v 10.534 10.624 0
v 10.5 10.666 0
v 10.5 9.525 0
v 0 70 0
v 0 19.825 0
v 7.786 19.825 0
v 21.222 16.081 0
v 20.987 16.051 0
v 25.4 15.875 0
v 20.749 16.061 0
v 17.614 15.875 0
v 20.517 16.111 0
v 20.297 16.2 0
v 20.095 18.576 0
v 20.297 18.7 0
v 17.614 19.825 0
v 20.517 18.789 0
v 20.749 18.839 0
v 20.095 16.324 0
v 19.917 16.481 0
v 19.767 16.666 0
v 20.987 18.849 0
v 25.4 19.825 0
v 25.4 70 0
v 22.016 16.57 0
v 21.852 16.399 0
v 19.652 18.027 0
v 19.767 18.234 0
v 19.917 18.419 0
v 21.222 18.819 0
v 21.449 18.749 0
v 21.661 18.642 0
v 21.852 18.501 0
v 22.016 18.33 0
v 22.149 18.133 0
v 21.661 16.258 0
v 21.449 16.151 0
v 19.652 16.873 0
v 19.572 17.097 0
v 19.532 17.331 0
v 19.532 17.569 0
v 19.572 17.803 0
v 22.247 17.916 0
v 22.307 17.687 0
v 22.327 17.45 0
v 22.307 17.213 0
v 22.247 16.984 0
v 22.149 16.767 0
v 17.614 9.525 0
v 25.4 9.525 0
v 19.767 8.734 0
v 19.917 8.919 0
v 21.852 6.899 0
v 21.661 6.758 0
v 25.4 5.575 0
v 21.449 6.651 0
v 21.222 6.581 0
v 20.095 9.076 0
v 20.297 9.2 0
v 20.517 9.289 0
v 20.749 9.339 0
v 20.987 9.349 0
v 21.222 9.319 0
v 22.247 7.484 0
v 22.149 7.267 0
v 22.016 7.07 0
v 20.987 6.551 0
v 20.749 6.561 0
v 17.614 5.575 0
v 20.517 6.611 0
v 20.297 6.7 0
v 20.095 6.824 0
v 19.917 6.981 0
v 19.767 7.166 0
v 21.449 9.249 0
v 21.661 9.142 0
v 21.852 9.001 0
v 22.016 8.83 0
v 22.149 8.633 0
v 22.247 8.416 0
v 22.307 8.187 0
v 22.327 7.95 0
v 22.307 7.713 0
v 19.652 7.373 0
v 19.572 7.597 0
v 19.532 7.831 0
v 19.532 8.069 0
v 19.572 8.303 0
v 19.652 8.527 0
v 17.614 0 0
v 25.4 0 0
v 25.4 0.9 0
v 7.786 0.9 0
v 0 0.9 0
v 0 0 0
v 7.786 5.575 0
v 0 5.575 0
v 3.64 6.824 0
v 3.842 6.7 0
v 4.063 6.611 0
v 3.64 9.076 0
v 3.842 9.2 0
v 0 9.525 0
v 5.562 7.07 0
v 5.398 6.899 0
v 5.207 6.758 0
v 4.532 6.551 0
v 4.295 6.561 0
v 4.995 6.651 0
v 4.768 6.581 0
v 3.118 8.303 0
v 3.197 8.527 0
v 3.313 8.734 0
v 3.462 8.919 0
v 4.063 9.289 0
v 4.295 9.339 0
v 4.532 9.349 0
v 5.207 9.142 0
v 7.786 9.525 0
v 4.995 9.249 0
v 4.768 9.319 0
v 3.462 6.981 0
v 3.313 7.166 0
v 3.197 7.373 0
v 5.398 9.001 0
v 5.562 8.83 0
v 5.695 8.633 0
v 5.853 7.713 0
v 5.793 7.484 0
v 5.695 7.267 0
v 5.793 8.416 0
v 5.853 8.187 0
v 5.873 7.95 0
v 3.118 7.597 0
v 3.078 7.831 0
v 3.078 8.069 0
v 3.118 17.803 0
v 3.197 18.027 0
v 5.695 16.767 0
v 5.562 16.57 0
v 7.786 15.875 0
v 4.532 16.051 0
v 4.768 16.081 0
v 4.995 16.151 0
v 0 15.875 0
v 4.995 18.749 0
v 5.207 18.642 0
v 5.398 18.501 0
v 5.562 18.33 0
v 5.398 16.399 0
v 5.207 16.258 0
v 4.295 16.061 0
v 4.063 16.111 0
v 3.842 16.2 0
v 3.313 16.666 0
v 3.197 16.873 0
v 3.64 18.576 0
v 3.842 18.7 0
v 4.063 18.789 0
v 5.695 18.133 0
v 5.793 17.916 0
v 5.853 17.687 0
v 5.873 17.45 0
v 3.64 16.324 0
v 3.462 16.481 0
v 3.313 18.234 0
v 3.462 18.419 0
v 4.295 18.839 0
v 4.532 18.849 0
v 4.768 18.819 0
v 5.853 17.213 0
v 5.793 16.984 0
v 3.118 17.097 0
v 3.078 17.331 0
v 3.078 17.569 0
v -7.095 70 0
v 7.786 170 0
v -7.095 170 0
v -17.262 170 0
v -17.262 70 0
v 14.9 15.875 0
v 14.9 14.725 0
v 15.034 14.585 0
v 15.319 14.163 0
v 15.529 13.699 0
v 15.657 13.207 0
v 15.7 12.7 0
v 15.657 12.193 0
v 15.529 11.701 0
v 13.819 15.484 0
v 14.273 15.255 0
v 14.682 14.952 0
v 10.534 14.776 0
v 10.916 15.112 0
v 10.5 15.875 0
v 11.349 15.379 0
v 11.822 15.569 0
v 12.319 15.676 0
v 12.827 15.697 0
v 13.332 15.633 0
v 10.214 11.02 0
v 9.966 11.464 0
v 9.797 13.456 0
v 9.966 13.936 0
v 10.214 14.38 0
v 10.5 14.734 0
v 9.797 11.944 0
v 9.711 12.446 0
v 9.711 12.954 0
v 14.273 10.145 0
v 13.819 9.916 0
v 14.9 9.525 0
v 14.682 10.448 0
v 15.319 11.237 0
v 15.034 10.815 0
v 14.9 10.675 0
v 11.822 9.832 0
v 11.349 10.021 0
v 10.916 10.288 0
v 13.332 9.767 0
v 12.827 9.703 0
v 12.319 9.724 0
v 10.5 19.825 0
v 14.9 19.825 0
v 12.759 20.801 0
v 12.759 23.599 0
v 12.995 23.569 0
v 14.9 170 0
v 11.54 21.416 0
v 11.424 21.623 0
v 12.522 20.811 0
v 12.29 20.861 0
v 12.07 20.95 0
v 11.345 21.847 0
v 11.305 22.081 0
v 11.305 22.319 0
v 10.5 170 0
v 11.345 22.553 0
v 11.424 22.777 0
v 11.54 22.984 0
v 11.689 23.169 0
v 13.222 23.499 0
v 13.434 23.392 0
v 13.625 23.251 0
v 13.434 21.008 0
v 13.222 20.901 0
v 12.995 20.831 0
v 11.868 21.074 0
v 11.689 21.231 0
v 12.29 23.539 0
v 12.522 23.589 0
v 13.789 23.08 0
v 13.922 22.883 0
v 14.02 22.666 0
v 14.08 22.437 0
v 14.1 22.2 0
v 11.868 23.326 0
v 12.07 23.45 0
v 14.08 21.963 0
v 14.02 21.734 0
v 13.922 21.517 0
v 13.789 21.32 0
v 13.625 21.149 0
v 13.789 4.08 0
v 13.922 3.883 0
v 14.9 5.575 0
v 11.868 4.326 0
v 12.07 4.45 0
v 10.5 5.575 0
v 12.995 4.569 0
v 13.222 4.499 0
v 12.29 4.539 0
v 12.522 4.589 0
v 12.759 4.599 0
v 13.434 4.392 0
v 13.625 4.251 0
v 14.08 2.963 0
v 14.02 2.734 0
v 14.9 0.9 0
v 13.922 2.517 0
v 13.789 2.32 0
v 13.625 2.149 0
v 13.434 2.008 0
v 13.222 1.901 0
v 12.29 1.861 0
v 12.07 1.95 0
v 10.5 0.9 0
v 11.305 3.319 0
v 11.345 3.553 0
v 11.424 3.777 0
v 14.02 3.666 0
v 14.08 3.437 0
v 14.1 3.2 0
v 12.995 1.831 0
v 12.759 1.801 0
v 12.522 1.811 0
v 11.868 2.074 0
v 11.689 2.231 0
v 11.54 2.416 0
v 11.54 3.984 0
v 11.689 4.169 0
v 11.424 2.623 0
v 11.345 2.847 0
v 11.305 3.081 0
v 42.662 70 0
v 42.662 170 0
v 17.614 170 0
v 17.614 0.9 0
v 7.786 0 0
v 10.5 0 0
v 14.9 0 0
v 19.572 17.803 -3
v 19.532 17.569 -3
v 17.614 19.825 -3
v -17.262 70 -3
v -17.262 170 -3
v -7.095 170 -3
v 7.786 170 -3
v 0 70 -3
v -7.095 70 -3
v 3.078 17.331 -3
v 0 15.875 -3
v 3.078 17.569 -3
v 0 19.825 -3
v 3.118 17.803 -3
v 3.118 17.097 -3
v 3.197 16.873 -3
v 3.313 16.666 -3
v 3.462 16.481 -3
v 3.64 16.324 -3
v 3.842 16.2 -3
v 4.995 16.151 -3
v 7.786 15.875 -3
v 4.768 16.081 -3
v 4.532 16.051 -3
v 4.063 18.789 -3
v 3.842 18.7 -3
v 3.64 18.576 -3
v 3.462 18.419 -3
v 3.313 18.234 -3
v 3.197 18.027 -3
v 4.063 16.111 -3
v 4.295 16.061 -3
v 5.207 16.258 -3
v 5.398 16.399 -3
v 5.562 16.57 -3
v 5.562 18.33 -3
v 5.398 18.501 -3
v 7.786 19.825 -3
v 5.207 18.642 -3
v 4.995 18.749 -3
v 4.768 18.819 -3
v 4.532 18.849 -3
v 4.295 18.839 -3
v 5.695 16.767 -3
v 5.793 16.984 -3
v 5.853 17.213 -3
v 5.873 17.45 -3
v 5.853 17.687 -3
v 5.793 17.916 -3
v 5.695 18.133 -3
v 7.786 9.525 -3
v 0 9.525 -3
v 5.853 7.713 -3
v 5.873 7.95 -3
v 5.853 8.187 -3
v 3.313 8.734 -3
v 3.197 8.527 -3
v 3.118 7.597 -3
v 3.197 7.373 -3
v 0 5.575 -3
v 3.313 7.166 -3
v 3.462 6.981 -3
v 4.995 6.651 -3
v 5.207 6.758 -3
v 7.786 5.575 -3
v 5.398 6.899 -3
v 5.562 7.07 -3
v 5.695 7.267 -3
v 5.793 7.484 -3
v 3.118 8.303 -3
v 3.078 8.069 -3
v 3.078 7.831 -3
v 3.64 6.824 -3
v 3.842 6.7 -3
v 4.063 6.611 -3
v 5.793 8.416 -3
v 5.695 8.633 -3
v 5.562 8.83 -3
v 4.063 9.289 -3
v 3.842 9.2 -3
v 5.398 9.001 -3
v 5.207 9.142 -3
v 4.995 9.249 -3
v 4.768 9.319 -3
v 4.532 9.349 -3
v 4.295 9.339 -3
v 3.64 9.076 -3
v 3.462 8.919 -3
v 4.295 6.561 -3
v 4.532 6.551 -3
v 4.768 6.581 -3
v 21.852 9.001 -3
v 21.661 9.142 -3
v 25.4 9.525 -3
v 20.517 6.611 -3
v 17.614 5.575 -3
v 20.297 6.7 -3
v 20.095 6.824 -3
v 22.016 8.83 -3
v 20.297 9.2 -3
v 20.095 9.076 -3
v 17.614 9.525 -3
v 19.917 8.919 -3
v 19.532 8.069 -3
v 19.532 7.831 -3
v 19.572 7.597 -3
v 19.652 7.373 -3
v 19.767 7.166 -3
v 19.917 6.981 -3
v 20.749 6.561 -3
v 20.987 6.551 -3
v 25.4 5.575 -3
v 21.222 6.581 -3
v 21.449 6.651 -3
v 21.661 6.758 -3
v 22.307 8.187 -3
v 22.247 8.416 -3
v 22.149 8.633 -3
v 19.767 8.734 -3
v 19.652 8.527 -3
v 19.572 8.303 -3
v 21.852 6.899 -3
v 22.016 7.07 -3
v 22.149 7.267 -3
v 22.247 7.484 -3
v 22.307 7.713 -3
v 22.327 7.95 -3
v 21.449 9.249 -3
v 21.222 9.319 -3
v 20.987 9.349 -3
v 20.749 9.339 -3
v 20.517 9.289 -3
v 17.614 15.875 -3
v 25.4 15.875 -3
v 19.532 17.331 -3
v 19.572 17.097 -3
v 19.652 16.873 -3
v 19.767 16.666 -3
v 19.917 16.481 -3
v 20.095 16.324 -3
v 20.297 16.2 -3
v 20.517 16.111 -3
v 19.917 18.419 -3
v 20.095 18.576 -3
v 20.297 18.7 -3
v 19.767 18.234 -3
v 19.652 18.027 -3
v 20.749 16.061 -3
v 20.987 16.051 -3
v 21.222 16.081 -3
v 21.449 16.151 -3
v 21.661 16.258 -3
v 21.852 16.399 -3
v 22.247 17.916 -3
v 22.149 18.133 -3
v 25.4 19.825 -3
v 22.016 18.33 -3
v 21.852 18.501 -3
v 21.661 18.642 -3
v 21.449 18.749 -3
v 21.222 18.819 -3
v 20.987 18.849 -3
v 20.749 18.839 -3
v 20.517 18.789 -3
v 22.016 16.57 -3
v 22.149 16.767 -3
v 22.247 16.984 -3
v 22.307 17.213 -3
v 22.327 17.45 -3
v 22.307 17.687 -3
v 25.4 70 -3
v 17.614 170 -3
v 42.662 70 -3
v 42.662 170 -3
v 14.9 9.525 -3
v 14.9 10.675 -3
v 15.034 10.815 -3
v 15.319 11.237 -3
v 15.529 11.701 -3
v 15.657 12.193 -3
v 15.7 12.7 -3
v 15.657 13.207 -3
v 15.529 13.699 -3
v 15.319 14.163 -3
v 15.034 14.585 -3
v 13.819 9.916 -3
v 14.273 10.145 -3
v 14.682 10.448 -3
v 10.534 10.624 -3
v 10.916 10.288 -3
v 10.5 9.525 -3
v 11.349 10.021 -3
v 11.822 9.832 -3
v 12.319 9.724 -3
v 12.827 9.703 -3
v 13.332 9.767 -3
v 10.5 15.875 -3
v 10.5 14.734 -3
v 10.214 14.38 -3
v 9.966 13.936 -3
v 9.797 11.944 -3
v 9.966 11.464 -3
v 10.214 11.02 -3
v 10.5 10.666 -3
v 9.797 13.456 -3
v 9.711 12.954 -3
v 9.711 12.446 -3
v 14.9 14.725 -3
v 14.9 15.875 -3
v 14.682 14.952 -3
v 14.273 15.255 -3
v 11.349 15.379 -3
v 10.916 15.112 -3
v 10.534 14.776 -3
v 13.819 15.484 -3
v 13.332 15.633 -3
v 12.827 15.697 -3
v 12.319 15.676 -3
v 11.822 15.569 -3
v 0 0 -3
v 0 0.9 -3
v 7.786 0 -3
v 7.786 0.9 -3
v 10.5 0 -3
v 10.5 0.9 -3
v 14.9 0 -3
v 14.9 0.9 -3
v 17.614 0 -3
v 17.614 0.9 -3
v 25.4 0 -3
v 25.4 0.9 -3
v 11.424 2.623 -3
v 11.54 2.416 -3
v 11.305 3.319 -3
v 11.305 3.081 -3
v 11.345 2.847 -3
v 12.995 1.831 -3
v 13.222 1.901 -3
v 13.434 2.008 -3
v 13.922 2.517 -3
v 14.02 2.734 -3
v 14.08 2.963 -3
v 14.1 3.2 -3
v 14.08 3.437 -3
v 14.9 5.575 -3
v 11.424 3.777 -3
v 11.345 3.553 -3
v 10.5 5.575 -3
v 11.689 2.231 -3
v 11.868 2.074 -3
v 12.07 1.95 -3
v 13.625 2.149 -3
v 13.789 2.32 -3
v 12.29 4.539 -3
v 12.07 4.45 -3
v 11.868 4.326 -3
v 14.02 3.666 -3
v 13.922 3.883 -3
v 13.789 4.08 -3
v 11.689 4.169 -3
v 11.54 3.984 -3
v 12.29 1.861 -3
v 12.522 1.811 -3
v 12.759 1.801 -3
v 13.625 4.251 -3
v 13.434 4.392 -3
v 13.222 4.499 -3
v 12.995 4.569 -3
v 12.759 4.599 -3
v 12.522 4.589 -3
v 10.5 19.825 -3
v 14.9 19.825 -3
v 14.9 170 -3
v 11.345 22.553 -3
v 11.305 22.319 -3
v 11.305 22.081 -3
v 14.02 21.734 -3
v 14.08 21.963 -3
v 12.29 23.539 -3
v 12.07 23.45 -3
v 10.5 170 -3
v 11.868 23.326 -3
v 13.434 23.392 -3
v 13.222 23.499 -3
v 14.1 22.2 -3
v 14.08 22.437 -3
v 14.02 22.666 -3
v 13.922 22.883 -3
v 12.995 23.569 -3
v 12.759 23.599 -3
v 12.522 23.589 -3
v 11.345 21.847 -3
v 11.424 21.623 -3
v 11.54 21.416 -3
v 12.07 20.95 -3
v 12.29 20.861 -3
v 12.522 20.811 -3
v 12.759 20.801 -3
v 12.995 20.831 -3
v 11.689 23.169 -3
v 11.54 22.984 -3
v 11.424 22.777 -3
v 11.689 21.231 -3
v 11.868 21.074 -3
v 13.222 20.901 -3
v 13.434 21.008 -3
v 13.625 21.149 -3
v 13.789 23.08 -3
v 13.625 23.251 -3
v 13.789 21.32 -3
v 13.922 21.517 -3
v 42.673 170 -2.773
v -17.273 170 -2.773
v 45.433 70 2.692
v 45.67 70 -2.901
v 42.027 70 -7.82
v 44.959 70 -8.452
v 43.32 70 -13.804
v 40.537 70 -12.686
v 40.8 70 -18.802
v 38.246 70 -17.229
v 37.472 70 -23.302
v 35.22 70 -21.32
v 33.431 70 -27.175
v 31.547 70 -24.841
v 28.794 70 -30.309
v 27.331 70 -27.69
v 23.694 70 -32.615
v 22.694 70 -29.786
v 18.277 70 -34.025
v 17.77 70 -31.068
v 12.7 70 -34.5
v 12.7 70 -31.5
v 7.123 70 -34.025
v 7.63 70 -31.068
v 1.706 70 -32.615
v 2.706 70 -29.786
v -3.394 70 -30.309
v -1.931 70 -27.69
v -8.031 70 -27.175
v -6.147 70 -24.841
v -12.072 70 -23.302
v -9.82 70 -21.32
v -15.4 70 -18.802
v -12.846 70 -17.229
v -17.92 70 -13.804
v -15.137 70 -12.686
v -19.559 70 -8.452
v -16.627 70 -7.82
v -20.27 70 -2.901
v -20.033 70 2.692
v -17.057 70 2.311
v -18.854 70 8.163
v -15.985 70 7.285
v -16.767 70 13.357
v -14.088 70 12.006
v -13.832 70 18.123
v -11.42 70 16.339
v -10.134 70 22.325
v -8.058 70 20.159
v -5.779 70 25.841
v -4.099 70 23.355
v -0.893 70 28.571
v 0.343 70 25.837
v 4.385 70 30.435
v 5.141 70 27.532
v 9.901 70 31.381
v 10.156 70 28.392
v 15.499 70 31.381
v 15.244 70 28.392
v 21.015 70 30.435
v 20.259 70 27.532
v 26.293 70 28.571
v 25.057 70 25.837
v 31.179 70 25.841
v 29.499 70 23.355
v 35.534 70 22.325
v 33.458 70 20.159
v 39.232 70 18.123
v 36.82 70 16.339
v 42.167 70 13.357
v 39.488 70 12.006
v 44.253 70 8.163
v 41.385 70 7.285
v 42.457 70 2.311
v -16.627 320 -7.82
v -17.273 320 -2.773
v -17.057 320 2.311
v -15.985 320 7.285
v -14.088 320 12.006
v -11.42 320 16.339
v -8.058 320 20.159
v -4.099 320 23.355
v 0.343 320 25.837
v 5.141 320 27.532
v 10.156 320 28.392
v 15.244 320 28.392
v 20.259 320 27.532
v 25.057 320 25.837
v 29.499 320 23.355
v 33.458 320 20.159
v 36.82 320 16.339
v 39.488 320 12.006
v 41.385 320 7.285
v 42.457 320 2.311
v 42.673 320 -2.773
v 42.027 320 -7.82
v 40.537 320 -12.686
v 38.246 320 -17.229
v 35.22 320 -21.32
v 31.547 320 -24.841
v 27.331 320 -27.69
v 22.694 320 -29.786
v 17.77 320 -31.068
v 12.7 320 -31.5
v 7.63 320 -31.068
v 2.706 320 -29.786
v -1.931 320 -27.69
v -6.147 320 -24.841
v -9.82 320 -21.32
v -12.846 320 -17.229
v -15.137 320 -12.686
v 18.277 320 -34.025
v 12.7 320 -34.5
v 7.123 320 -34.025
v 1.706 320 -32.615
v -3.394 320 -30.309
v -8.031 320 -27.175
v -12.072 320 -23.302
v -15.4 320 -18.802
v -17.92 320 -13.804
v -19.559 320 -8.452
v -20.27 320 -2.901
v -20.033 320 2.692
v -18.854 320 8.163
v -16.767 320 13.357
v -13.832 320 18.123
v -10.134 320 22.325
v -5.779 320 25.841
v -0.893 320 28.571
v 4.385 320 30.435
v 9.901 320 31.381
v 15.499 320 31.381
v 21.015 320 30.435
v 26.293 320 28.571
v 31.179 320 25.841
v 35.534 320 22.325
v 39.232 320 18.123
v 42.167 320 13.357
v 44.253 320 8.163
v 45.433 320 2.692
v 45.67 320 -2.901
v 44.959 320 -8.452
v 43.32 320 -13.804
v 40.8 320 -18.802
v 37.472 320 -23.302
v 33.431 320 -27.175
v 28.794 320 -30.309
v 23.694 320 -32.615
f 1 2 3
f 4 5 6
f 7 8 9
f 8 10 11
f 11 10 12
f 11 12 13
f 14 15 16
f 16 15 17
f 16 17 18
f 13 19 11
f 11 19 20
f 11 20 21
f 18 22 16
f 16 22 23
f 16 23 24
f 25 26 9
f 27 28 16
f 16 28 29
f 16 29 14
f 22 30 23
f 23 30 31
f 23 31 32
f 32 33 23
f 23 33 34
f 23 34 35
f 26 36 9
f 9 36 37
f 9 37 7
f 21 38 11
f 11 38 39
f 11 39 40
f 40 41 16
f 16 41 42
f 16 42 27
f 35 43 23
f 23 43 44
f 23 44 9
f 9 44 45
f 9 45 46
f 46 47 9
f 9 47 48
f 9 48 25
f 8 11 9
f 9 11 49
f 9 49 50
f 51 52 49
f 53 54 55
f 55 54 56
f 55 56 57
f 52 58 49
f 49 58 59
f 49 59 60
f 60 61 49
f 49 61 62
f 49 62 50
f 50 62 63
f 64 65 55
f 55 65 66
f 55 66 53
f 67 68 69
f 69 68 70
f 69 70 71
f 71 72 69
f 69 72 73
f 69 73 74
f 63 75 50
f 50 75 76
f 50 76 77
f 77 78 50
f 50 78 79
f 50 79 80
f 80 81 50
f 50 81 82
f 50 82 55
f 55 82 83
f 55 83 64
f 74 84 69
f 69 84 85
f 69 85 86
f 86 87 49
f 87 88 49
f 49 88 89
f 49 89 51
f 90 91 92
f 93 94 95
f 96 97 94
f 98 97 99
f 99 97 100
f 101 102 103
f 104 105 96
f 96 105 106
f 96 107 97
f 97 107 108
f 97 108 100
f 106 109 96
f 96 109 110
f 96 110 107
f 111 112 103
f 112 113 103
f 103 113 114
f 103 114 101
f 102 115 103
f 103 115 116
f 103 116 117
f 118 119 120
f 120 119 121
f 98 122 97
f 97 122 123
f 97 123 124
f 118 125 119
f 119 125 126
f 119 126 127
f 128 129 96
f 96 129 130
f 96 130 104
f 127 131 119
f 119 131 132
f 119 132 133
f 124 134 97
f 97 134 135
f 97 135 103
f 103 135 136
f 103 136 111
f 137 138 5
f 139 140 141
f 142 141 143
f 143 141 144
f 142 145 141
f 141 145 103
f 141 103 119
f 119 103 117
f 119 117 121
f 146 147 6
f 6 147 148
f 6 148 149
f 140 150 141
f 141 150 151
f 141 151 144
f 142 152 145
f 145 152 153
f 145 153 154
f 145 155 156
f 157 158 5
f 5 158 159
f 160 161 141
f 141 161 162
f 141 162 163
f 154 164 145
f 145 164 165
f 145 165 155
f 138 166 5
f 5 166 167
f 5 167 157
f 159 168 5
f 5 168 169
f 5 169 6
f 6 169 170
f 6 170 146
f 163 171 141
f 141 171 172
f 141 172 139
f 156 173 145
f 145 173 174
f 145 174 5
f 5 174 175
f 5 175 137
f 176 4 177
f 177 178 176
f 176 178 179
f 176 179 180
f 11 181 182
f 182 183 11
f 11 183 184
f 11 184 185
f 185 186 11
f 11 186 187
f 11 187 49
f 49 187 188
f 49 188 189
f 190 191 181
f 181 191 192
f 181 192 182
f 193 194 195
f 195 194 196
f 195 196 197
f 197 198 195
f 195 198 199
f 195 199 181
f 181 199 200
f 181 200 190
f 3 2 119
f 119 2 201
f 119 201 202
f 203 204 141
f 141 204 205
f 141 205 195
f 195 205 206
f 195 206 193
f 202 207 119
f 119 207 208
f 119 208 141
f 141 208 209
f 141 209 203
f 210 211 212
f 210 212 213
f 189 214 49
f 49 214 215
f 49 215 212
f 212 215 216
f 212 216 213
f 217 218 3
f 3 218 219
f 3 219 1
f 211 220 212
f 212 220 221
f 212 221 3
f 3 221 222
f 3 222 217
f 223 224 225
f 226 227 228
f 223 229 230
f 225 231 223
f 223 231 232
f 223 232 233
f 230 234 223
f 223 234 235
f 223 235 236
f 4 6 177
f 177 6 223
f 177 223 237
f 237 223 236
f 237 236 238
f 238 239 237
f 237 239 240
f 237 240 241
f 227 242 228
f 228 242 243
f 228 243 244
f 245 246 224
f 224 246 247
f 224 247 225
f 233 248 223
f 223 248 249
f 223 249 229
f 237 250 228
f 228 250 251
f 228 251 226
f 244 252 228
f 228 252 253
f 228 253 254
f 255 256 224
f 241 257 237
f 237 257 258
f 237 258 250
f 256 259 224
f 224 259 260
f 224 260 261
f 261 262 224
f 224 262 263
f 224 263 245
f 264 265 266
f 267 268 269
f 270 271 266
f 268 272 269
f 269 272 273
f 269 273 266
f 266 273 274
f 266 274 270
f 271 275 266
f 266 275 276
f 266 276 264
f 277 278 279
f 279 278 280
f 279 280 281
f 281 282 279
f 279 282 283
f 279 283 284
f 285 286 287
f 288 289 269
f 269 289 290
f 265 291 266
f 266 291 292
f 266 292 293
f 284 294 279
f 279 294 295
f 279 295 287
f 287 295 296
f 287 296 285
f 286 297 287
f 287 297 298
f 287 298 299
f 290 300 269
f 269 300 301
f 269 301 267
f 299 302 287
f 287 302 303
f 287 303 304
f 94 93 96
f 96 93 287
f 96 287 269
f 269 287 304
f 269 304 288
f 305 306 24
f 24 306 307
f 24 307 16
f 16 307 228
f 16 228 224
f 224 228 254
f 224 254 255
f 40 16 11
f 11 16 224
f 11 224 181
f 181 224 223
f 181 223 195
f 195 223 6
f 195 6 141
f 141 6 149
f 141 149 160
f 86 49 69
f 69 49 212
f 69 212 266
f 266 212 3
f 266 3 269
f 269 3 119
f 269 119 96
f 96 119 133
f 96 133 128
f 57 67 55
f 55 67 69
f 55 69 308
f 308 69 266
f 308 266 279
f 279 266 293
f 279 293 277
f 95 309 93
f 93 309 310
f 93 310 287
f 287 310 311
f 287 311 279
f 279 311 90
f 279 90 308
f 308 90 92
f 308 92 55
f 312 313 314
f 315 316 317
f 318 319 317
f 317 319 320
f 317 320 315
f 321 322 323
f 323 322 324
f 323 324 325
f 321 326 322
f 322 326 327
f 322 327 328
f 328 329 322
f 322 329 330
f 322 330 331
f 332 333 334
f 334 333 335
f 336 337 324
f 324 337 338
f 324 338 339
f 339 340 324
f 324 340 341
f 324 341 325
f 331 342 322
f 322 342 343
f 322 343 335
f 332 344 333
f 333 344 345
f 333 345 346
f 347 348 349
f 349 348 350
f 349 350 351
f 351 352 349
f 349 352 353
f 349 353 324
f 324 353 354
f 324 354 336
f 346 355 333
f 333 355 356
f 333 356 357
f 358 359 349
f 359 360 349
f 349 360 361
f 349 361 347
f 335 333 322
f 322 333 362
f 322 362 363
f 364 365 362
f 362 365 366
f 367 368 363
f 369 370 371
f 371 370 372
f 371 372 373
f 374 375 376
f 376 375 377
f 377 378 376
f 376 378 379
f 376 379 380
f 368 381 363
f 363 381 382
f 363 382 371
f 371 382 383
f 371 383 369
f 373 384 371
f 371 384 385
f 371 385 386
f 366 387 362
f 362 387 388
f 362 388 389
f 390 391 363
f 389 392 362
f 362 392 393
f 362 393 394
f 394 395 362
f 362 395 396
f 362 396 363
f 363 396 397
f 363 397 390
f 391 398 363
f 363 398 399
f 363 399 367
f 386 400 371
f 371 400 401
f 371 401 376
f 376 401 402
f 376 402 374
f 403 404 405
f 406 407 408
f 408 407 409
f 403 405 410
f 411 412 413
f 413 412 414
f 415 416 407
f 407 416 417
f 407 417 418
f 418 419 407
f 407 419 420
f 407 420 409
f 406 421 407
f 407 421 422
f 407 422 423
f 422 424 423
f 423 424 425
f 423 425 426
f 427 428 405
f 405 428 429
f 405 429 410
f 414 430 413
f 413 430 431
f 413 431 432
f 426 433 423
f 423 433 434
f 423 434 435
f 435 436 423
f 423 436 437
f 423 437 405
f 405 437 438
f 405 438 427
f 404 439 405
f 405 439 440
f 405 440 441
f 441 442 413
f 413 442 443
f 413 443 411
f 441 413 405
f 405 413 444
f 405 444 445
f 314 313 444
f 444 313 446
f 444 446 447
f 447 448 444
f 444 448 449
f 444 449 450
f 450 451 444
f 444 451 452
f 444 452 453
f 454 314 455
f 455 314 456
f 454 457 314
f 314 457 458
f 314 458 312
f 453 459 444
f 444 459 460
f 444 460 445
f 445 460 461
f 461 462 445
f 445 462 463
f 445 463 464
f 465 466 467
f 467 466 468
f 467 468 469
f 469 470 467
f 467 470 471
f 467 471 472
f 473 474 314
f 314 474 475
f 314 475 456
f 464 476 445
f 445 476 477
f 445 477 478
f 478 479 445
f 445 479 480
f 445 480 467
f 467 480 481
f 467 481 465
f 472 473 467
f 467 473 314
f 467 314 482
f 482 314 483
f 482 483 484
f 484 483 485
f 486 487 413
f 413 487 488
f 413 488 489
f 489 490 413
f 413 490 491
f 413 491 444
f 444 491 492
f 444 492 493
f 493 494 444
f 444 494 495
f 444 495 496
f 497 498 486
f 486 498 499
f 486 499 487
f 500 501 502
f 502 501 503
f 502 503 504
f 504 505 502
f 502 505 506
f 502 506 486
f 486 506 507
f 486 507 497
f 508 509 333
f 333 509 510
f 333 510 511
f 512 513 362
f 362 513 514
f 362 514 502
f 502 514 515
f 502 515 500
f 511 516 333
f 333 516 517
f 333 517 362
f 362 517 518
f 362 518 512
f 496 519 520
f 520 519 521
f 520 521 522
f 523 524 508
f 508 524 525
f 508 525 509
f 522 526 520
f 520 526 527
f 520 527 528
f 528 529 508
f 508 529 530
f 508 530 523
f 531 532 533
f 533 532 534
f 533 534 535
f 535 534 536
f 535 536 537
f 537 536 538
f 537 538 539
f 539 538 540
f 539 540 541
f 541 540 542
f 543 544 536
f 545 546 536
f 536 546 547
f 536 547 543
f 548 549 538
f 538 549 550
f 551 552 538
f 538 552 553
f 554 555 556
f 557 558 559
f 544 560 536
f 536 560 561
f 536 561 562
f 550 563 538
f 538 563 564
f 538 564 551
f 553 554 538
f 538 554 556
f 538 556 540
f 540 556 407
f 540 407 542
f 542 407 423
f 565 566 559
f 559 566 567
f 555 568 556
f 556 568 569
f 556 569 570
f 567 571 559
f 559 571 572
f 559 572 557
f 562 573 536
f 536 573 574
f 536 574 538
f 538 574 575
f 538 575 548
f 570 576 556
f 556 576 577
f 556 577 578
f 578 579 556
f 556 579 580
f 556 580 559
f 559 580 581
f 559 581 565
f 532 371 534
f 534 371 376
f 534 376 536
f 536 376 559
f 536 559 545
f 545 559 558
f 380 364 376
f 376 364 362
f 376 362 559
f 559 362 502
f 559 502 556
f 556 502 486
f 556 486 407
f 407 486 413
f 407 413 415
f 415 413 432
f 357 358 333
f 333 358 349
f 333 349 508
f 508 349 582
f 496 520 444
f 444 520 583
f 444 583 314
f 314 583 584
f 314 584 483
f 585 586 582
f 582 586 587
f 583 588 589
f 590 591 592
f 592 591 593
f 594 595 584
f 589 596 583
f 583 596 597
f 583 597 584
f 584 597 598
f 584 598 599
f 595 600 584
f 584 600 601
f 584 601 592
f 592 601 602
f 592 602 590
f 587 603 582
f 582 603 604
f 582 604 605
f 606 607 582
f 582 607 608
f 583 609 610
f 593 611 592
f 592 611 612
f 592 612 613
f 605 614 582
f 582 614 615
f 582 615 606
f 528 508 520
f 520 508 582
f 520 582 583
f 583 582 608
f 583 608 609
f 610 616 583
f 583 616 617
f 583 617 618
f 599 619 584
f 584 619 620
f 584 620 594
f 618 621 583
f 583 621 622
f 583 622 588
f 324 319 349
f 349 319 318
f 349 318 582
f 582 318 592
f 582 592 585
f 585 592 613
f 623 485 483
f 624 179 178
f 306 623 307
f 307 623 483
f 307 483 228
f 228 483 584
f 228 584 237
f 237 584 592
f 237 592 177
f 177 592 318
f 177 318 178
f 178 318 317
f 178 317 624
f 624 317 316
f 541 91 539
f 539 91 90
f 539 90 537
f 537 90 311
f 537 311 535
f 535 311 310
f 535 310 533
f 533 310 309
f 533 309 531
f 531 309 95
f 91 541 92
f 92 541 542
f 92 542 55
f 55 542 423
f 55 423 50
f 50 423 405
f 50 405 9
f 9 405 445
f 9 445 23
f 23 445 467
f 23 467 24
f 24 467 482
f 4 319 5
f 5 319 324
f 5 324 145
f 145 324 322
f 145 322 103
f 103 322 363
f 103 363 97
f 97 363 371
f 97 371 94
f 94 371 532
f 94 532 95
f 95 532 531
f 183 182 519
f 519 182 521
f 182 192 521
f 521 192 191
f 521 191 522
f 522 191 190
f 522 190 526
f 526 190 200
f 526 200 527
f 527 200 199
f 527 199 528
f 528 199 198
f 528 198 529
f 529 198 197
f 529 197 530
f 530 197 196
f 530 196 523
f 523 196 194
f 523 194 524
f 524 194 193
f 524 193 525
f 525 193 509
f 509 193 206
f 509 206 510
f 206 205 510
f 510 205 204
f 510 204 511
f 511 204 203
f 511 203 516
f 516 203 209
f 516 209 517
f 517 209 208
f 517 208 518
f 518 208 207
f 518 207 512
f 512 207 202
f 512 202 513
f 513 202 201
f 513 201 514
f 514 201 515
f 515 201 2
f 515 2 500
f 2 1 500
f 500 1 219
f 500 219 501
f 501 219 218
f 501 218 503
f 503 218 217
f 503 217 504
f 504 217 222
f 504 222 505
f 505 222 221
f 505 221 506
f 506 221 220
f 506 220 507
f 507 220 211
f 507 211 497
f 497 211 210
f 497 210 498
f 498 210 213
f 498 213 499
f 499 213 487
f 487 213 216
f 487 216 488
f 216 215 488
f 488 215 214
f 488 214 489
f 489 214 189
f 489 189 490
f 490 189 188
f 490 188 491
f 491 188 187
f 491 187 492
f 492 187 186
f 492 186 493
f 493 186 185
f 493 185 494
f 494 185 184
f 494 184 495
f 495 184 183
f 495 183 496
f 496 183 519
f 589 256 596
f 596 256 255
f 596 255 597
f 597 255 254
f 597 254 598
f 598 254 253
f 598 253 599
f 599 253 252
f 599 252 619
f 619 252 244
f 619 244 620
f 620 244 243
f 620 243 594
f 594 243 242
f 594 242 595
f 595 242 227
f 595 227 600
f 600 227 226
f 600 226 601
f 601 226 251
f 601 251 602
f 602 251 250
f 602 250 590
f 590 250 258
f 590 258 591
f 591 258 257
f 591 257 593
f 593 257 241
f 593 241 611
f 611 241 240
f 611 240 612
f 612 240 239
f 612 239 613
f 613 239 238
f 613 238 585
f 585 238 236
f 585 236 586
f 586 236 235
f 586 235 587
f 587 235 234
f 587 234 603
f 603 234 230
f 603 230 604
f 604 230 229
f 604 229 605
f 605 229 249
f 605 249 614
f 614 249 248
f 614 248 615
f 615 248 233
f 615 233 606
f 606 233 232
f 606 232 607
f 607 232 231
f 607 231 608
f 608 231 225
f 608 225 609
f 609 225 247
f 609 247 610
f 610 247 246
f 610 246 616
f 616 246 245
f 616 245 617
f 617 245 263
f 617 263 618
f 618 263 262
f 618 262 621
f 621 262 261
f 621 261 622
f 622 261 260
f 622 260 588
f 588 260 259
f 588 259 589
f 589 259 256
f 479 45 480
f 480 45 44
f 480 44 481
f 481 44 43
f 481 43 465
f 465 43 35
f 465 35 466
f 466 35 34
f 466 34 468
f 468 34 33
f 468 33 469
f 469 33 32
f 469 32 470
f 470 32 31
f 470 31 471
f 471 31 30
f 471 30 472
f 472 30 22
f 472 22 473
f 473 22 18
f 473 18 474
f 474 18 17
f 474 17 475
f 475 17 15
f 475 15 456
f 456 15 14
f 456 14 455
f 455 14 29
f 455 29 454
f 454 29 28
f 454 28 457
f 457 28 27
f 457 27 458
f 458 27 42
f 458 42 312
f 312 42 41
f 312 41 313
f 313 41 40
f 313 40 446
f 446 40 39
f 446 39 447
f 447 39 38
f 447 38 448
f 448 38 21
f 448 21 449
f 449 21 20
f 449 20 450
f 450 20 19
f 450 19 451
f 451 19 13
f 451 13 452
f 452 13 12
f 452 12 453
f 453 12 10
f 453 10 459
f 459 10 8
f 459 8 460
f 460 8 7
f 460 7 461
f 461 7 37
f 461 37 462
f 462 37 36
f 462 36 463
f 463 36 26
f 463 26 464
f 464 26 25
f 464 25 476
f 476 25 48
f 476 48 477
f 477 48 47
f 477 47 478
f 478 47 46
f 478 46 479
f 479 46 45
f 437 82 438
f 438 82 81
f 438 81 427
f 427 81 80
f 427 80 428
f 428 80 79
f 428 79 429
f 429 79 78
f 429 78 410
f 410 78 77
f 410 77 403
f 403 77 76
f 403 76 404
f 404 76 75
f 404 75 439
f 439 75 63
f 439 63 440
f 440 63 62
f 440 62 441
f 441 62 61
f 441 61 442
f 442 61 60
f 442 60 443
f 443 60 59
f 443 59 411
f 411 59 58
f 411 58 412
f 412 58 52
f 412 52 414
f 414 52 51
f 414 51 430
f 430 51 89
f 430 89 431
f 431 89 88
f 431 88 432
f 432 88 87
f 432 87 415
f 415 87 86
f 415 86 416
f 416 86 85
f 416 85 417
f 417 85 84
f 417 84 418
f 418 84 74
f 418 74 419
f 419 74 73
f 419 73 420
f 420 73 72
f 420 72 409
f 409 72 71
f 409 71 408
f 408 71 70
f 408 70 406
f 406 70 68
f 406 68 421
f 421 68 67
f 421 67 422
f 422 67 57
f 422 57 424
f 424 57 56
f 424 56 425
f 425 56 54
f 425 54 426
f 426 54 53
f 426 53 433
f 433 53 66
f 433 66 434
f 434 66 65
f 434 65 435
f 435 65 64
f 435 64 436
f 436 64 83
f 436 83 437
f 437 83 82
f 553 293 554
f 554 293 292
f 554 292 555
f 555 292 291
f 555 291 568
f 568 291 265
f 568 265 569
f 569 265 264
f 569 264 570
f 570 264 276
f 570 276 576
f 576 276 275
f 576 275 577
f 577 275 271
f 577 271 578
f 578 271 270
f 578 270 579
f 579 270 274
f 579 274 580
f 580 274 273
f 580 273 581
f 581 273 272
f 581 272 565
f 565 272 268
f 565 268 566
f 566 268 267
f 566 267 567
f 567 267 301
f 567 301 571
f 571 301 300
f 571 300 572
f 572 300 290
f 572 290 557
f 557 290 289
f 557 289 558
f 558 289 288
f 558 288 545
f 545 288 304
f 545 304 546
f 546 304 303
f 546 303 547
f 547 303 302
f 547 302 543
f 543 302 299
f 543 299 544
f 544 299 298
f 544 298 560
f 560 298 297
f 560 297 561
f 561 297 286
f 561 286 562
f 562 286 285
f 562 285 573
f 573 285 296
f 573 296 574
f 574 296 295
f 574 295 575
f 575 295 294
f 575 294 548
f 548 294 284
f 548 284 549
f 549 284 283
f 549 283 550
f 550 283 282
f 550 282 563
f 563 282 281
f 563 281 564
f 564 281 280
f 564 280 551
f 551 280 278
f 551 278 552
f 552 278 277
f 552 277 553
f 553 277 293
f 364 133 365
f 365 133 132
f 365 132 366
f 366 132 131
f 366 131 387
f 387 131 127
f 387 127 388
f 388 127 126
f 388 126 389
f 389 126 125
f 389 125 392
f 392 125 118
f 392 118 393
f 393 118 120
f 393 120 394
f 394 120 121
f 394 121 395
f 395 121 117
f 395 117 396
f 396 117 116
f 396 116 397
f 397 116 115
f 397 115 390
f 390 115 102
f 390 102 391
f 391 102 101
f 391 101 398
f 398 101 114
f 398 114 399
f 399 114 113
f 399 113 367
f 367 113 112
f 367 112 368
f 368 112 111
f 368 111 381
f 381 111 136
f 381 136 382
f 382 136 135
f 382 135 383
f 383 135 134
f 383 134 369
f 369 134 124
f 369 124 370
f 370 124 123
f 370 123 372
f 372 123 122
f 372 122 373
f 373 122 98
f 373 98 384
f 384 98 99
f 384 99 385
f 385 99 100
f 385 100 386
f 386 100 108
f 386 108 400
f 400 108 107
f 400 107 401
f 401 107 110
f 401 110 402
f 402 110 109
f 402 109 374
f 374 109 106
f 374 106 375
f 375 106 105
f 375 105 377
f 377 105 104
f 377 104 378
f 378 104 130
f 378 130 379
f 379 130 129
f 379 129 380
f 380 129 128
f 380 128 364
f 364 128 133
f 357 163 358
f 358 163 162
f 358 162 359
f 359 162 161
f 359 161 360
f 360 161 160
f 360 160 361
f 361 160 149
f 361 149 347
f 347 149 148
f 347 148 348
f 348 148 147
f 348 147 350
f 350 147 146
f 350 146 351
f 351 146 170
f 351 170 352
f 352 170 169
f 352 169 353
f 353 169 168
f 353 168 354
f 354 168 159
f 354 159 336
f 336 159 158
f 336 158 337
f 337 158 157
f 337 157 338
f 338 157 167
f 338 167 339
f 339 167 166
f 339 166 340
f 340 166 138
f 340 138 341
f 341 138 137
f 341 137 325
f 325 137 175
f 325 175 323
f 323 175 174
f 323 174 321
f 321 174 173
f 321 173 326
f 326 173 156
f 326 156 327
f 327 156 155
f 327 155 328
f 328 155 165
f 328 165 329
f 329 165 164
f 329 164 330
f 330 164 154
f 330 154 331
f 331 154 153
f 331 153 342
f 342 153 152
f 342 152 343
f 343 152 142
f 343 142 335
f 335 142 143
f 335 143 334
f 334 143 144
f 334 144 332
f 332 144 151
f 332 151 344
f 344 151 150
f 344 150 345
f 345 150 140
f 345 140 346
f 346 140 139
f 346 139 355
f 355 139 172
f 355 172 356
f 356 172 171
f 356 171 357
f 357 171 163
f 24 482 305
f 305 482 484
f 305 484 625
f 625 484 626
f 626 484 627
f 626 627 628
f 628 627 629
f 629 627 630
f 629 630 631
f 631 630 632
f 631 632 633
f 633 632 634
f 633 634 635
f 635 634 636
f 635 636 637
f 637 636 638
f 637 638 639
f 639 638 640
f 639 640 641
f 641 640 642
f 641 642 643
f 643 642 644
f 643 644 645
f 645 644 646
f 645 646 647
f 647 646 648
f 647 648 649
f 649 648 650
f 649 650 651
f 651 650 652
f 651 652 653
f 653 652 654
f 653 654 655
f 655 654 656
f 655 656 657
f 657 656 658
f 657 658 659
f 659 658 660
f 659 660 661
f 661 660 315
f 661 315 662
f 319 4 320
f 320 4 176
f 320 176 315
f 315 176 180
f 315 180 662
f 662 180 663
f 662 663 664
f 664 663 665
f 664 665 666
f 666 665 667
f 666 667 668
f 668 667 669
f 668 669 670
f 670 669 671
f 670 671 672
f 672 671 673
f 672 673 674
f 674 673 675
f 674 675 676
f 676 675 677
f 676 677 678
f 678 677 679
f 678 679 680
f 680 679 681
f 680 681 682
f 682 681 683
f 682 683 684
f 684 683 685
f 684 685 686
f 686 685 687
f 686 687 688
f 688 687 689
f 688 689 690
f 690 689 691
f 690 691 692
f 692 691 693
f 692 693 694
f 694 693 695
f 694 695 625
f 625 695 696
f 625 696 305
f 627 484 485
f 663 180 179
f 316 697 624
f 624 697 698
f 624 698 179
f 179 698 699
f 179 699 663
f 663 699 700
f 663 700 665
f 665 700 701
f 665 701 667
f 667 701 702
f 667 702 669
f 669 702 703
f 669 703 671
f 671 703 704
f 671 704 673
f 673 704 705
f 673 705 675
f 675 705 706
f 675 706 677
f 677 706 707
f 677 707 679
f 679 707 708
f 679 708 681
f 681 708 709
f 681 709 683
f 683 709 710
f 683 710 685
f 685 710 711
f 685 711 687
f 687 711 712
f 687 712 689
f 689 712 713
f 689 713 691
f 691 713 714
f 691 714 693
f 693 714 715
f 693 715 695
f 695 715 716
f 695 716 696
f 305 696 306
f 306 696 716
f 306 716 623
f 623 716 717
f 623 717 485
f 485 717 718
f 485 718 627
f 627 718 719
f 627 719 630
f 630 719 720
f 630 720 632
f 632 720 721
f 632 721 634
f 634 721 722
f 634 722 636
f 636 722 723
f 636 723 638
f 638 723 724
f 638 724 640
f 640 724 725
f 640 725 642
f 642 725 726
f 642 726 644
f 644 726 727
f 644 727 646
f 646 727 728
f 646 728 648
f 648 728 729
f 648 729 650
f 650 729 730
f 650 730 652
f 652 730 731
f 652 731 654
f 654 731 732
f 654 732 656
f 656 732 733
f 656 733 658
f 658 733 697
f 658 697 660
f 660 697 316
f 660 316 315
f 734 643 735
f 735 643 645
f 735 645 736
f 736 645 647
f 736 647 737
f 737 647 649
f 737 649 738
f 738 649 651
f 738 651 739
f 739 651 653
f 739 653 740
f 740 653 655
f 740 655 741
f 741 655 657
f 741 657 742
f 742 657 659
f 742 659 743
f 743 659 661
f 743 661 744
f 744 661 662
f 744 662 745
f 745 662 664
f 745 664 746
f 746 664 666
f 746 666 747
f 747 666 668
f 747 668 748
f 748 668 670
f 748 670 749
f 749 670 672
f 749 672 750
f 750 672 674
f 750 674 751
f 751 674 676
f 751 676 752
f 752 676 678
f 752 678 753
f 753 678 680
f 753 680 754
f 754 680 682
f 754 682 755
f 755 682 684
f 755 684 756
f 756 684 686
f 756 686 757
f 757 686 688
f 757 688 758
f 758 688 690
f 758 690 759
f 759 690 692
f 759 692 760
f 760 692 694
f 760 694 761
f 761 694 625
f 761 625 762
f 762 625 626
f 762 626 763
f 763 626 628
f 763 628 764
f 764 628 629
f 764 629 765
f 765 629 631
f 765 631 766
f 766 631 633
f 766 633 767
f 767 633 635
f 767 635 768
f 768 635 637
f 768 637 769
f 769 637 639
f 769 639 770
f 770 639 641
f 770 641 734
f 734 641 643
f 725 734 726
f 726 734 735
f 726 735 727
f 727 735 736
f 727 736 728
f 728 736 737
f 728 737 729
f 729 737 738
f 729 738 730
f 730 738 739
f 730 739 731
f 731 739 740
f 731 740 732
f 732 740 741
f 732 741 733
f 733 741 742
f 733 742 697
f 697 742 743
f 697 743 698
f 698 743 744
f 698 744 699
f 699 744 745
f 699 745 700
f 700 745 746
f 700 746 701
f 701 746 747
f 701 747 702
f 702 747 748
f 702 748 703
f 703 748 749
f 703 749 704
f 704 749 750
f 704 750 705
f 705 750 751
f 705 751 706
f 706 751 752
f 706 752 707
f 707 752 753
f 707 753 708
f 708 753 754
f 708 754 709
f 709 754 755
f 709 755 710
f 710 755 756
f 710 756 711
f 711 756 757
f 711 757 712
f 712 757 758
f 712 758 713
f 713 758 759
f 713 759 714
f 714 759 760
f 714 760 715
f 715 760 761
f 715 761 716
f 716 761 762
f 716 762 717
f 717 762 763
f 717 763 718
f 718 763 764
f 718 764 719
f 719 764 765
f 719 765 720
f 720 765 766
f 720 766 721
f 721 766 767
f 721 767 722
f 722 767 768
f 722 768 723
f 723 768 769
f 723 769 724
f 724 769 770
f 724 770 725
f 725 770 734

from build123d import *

# Parameters (mm, degrees)
SKETCH1_W           = 3
SKETCH1_H           = 70
BOSS_EXTRUDE1_DEPTH = 25.4
SKETCH2_R           = 3
SKETCH2_R_2         = 1.4
CUT_EXTRUDE1_DEPTH  = 25.4
BOSS_EXTRUDE2_DEPTH = 100
SKETCH4_R           = 33
SKETCH4_R_2         = 30
BOSS_EXTRUDE3_DEPTH = 250


with BuildPart() as part:
    # Sketch1 → Boss-Extrude1 (new body)
    with BuildSketch(Plane(origin=(0, 0, 0), x_dir=(0, 0, -1), z_dir=(1, 0, 0))):
        with Locations((1.5, 35)):
            Rectangle(SKETCH1_W, SKETCH1_H)
    extrude(amount=BOSS_EXTRUDE1_DEPTH)

    # Sketch2 → Cut-Extrude1 (cut)
    with BuildSketch(Plane.XY):
        with Locations((12.7, 12.7)):
            Circle(SKETCH2_R)
        with Locations((12.7, 22.2)):
            Circle(SKETCH2_R_2)
        with Locations((20.927241336, 17.45)):
            Circle(SKETCH2_R_2)
        with Locations((20.927241336, 7.95)):
            Circle(SKETCH2_R_2)
        with Locations((12.7, 3.2)):
            Circle(SKETCH2_R_2)
        with Locations((4.472758664, 7.95)):
            Circle(SKETCH2_R_2)
        with Locations((4.472758664, 17.45)):
            Circle(SKETCH2_R_2)
    extrude(amount=-CUT_EXTRUDE1_DEPTH, mode=Mode.SUBTRACT)

    # Sketch3 → Boss-Extrude2 (add)
    with BuildSketch(Plane(origin=(0, 70, 0), x_dir=(1, 0, 0), z_dir=(0, 1, 0))):
        Polygon((12.7, 0), (42.7, 0), (42.7, 3), (-17.3, 3), (-17.3, 0), align=None)
    extrude(amount=BOSS_EXTRUDE2_DEPTH)

    # Sketch4 → Boss-Extrude3 (add)
    with BuildSketch(Plane.XZ.offset(-70)):
        with Locations((12.7, -1.5)):
            Circle(SKETCH4_R)
        with Locations((12.7, -1.5)):
            Circle(SKETCH4_R_2, mode=Mode.SUBTRACT)
    extrude(amount=-BOSS_EXTRUDE3_DEPTH)


solid = part.part
